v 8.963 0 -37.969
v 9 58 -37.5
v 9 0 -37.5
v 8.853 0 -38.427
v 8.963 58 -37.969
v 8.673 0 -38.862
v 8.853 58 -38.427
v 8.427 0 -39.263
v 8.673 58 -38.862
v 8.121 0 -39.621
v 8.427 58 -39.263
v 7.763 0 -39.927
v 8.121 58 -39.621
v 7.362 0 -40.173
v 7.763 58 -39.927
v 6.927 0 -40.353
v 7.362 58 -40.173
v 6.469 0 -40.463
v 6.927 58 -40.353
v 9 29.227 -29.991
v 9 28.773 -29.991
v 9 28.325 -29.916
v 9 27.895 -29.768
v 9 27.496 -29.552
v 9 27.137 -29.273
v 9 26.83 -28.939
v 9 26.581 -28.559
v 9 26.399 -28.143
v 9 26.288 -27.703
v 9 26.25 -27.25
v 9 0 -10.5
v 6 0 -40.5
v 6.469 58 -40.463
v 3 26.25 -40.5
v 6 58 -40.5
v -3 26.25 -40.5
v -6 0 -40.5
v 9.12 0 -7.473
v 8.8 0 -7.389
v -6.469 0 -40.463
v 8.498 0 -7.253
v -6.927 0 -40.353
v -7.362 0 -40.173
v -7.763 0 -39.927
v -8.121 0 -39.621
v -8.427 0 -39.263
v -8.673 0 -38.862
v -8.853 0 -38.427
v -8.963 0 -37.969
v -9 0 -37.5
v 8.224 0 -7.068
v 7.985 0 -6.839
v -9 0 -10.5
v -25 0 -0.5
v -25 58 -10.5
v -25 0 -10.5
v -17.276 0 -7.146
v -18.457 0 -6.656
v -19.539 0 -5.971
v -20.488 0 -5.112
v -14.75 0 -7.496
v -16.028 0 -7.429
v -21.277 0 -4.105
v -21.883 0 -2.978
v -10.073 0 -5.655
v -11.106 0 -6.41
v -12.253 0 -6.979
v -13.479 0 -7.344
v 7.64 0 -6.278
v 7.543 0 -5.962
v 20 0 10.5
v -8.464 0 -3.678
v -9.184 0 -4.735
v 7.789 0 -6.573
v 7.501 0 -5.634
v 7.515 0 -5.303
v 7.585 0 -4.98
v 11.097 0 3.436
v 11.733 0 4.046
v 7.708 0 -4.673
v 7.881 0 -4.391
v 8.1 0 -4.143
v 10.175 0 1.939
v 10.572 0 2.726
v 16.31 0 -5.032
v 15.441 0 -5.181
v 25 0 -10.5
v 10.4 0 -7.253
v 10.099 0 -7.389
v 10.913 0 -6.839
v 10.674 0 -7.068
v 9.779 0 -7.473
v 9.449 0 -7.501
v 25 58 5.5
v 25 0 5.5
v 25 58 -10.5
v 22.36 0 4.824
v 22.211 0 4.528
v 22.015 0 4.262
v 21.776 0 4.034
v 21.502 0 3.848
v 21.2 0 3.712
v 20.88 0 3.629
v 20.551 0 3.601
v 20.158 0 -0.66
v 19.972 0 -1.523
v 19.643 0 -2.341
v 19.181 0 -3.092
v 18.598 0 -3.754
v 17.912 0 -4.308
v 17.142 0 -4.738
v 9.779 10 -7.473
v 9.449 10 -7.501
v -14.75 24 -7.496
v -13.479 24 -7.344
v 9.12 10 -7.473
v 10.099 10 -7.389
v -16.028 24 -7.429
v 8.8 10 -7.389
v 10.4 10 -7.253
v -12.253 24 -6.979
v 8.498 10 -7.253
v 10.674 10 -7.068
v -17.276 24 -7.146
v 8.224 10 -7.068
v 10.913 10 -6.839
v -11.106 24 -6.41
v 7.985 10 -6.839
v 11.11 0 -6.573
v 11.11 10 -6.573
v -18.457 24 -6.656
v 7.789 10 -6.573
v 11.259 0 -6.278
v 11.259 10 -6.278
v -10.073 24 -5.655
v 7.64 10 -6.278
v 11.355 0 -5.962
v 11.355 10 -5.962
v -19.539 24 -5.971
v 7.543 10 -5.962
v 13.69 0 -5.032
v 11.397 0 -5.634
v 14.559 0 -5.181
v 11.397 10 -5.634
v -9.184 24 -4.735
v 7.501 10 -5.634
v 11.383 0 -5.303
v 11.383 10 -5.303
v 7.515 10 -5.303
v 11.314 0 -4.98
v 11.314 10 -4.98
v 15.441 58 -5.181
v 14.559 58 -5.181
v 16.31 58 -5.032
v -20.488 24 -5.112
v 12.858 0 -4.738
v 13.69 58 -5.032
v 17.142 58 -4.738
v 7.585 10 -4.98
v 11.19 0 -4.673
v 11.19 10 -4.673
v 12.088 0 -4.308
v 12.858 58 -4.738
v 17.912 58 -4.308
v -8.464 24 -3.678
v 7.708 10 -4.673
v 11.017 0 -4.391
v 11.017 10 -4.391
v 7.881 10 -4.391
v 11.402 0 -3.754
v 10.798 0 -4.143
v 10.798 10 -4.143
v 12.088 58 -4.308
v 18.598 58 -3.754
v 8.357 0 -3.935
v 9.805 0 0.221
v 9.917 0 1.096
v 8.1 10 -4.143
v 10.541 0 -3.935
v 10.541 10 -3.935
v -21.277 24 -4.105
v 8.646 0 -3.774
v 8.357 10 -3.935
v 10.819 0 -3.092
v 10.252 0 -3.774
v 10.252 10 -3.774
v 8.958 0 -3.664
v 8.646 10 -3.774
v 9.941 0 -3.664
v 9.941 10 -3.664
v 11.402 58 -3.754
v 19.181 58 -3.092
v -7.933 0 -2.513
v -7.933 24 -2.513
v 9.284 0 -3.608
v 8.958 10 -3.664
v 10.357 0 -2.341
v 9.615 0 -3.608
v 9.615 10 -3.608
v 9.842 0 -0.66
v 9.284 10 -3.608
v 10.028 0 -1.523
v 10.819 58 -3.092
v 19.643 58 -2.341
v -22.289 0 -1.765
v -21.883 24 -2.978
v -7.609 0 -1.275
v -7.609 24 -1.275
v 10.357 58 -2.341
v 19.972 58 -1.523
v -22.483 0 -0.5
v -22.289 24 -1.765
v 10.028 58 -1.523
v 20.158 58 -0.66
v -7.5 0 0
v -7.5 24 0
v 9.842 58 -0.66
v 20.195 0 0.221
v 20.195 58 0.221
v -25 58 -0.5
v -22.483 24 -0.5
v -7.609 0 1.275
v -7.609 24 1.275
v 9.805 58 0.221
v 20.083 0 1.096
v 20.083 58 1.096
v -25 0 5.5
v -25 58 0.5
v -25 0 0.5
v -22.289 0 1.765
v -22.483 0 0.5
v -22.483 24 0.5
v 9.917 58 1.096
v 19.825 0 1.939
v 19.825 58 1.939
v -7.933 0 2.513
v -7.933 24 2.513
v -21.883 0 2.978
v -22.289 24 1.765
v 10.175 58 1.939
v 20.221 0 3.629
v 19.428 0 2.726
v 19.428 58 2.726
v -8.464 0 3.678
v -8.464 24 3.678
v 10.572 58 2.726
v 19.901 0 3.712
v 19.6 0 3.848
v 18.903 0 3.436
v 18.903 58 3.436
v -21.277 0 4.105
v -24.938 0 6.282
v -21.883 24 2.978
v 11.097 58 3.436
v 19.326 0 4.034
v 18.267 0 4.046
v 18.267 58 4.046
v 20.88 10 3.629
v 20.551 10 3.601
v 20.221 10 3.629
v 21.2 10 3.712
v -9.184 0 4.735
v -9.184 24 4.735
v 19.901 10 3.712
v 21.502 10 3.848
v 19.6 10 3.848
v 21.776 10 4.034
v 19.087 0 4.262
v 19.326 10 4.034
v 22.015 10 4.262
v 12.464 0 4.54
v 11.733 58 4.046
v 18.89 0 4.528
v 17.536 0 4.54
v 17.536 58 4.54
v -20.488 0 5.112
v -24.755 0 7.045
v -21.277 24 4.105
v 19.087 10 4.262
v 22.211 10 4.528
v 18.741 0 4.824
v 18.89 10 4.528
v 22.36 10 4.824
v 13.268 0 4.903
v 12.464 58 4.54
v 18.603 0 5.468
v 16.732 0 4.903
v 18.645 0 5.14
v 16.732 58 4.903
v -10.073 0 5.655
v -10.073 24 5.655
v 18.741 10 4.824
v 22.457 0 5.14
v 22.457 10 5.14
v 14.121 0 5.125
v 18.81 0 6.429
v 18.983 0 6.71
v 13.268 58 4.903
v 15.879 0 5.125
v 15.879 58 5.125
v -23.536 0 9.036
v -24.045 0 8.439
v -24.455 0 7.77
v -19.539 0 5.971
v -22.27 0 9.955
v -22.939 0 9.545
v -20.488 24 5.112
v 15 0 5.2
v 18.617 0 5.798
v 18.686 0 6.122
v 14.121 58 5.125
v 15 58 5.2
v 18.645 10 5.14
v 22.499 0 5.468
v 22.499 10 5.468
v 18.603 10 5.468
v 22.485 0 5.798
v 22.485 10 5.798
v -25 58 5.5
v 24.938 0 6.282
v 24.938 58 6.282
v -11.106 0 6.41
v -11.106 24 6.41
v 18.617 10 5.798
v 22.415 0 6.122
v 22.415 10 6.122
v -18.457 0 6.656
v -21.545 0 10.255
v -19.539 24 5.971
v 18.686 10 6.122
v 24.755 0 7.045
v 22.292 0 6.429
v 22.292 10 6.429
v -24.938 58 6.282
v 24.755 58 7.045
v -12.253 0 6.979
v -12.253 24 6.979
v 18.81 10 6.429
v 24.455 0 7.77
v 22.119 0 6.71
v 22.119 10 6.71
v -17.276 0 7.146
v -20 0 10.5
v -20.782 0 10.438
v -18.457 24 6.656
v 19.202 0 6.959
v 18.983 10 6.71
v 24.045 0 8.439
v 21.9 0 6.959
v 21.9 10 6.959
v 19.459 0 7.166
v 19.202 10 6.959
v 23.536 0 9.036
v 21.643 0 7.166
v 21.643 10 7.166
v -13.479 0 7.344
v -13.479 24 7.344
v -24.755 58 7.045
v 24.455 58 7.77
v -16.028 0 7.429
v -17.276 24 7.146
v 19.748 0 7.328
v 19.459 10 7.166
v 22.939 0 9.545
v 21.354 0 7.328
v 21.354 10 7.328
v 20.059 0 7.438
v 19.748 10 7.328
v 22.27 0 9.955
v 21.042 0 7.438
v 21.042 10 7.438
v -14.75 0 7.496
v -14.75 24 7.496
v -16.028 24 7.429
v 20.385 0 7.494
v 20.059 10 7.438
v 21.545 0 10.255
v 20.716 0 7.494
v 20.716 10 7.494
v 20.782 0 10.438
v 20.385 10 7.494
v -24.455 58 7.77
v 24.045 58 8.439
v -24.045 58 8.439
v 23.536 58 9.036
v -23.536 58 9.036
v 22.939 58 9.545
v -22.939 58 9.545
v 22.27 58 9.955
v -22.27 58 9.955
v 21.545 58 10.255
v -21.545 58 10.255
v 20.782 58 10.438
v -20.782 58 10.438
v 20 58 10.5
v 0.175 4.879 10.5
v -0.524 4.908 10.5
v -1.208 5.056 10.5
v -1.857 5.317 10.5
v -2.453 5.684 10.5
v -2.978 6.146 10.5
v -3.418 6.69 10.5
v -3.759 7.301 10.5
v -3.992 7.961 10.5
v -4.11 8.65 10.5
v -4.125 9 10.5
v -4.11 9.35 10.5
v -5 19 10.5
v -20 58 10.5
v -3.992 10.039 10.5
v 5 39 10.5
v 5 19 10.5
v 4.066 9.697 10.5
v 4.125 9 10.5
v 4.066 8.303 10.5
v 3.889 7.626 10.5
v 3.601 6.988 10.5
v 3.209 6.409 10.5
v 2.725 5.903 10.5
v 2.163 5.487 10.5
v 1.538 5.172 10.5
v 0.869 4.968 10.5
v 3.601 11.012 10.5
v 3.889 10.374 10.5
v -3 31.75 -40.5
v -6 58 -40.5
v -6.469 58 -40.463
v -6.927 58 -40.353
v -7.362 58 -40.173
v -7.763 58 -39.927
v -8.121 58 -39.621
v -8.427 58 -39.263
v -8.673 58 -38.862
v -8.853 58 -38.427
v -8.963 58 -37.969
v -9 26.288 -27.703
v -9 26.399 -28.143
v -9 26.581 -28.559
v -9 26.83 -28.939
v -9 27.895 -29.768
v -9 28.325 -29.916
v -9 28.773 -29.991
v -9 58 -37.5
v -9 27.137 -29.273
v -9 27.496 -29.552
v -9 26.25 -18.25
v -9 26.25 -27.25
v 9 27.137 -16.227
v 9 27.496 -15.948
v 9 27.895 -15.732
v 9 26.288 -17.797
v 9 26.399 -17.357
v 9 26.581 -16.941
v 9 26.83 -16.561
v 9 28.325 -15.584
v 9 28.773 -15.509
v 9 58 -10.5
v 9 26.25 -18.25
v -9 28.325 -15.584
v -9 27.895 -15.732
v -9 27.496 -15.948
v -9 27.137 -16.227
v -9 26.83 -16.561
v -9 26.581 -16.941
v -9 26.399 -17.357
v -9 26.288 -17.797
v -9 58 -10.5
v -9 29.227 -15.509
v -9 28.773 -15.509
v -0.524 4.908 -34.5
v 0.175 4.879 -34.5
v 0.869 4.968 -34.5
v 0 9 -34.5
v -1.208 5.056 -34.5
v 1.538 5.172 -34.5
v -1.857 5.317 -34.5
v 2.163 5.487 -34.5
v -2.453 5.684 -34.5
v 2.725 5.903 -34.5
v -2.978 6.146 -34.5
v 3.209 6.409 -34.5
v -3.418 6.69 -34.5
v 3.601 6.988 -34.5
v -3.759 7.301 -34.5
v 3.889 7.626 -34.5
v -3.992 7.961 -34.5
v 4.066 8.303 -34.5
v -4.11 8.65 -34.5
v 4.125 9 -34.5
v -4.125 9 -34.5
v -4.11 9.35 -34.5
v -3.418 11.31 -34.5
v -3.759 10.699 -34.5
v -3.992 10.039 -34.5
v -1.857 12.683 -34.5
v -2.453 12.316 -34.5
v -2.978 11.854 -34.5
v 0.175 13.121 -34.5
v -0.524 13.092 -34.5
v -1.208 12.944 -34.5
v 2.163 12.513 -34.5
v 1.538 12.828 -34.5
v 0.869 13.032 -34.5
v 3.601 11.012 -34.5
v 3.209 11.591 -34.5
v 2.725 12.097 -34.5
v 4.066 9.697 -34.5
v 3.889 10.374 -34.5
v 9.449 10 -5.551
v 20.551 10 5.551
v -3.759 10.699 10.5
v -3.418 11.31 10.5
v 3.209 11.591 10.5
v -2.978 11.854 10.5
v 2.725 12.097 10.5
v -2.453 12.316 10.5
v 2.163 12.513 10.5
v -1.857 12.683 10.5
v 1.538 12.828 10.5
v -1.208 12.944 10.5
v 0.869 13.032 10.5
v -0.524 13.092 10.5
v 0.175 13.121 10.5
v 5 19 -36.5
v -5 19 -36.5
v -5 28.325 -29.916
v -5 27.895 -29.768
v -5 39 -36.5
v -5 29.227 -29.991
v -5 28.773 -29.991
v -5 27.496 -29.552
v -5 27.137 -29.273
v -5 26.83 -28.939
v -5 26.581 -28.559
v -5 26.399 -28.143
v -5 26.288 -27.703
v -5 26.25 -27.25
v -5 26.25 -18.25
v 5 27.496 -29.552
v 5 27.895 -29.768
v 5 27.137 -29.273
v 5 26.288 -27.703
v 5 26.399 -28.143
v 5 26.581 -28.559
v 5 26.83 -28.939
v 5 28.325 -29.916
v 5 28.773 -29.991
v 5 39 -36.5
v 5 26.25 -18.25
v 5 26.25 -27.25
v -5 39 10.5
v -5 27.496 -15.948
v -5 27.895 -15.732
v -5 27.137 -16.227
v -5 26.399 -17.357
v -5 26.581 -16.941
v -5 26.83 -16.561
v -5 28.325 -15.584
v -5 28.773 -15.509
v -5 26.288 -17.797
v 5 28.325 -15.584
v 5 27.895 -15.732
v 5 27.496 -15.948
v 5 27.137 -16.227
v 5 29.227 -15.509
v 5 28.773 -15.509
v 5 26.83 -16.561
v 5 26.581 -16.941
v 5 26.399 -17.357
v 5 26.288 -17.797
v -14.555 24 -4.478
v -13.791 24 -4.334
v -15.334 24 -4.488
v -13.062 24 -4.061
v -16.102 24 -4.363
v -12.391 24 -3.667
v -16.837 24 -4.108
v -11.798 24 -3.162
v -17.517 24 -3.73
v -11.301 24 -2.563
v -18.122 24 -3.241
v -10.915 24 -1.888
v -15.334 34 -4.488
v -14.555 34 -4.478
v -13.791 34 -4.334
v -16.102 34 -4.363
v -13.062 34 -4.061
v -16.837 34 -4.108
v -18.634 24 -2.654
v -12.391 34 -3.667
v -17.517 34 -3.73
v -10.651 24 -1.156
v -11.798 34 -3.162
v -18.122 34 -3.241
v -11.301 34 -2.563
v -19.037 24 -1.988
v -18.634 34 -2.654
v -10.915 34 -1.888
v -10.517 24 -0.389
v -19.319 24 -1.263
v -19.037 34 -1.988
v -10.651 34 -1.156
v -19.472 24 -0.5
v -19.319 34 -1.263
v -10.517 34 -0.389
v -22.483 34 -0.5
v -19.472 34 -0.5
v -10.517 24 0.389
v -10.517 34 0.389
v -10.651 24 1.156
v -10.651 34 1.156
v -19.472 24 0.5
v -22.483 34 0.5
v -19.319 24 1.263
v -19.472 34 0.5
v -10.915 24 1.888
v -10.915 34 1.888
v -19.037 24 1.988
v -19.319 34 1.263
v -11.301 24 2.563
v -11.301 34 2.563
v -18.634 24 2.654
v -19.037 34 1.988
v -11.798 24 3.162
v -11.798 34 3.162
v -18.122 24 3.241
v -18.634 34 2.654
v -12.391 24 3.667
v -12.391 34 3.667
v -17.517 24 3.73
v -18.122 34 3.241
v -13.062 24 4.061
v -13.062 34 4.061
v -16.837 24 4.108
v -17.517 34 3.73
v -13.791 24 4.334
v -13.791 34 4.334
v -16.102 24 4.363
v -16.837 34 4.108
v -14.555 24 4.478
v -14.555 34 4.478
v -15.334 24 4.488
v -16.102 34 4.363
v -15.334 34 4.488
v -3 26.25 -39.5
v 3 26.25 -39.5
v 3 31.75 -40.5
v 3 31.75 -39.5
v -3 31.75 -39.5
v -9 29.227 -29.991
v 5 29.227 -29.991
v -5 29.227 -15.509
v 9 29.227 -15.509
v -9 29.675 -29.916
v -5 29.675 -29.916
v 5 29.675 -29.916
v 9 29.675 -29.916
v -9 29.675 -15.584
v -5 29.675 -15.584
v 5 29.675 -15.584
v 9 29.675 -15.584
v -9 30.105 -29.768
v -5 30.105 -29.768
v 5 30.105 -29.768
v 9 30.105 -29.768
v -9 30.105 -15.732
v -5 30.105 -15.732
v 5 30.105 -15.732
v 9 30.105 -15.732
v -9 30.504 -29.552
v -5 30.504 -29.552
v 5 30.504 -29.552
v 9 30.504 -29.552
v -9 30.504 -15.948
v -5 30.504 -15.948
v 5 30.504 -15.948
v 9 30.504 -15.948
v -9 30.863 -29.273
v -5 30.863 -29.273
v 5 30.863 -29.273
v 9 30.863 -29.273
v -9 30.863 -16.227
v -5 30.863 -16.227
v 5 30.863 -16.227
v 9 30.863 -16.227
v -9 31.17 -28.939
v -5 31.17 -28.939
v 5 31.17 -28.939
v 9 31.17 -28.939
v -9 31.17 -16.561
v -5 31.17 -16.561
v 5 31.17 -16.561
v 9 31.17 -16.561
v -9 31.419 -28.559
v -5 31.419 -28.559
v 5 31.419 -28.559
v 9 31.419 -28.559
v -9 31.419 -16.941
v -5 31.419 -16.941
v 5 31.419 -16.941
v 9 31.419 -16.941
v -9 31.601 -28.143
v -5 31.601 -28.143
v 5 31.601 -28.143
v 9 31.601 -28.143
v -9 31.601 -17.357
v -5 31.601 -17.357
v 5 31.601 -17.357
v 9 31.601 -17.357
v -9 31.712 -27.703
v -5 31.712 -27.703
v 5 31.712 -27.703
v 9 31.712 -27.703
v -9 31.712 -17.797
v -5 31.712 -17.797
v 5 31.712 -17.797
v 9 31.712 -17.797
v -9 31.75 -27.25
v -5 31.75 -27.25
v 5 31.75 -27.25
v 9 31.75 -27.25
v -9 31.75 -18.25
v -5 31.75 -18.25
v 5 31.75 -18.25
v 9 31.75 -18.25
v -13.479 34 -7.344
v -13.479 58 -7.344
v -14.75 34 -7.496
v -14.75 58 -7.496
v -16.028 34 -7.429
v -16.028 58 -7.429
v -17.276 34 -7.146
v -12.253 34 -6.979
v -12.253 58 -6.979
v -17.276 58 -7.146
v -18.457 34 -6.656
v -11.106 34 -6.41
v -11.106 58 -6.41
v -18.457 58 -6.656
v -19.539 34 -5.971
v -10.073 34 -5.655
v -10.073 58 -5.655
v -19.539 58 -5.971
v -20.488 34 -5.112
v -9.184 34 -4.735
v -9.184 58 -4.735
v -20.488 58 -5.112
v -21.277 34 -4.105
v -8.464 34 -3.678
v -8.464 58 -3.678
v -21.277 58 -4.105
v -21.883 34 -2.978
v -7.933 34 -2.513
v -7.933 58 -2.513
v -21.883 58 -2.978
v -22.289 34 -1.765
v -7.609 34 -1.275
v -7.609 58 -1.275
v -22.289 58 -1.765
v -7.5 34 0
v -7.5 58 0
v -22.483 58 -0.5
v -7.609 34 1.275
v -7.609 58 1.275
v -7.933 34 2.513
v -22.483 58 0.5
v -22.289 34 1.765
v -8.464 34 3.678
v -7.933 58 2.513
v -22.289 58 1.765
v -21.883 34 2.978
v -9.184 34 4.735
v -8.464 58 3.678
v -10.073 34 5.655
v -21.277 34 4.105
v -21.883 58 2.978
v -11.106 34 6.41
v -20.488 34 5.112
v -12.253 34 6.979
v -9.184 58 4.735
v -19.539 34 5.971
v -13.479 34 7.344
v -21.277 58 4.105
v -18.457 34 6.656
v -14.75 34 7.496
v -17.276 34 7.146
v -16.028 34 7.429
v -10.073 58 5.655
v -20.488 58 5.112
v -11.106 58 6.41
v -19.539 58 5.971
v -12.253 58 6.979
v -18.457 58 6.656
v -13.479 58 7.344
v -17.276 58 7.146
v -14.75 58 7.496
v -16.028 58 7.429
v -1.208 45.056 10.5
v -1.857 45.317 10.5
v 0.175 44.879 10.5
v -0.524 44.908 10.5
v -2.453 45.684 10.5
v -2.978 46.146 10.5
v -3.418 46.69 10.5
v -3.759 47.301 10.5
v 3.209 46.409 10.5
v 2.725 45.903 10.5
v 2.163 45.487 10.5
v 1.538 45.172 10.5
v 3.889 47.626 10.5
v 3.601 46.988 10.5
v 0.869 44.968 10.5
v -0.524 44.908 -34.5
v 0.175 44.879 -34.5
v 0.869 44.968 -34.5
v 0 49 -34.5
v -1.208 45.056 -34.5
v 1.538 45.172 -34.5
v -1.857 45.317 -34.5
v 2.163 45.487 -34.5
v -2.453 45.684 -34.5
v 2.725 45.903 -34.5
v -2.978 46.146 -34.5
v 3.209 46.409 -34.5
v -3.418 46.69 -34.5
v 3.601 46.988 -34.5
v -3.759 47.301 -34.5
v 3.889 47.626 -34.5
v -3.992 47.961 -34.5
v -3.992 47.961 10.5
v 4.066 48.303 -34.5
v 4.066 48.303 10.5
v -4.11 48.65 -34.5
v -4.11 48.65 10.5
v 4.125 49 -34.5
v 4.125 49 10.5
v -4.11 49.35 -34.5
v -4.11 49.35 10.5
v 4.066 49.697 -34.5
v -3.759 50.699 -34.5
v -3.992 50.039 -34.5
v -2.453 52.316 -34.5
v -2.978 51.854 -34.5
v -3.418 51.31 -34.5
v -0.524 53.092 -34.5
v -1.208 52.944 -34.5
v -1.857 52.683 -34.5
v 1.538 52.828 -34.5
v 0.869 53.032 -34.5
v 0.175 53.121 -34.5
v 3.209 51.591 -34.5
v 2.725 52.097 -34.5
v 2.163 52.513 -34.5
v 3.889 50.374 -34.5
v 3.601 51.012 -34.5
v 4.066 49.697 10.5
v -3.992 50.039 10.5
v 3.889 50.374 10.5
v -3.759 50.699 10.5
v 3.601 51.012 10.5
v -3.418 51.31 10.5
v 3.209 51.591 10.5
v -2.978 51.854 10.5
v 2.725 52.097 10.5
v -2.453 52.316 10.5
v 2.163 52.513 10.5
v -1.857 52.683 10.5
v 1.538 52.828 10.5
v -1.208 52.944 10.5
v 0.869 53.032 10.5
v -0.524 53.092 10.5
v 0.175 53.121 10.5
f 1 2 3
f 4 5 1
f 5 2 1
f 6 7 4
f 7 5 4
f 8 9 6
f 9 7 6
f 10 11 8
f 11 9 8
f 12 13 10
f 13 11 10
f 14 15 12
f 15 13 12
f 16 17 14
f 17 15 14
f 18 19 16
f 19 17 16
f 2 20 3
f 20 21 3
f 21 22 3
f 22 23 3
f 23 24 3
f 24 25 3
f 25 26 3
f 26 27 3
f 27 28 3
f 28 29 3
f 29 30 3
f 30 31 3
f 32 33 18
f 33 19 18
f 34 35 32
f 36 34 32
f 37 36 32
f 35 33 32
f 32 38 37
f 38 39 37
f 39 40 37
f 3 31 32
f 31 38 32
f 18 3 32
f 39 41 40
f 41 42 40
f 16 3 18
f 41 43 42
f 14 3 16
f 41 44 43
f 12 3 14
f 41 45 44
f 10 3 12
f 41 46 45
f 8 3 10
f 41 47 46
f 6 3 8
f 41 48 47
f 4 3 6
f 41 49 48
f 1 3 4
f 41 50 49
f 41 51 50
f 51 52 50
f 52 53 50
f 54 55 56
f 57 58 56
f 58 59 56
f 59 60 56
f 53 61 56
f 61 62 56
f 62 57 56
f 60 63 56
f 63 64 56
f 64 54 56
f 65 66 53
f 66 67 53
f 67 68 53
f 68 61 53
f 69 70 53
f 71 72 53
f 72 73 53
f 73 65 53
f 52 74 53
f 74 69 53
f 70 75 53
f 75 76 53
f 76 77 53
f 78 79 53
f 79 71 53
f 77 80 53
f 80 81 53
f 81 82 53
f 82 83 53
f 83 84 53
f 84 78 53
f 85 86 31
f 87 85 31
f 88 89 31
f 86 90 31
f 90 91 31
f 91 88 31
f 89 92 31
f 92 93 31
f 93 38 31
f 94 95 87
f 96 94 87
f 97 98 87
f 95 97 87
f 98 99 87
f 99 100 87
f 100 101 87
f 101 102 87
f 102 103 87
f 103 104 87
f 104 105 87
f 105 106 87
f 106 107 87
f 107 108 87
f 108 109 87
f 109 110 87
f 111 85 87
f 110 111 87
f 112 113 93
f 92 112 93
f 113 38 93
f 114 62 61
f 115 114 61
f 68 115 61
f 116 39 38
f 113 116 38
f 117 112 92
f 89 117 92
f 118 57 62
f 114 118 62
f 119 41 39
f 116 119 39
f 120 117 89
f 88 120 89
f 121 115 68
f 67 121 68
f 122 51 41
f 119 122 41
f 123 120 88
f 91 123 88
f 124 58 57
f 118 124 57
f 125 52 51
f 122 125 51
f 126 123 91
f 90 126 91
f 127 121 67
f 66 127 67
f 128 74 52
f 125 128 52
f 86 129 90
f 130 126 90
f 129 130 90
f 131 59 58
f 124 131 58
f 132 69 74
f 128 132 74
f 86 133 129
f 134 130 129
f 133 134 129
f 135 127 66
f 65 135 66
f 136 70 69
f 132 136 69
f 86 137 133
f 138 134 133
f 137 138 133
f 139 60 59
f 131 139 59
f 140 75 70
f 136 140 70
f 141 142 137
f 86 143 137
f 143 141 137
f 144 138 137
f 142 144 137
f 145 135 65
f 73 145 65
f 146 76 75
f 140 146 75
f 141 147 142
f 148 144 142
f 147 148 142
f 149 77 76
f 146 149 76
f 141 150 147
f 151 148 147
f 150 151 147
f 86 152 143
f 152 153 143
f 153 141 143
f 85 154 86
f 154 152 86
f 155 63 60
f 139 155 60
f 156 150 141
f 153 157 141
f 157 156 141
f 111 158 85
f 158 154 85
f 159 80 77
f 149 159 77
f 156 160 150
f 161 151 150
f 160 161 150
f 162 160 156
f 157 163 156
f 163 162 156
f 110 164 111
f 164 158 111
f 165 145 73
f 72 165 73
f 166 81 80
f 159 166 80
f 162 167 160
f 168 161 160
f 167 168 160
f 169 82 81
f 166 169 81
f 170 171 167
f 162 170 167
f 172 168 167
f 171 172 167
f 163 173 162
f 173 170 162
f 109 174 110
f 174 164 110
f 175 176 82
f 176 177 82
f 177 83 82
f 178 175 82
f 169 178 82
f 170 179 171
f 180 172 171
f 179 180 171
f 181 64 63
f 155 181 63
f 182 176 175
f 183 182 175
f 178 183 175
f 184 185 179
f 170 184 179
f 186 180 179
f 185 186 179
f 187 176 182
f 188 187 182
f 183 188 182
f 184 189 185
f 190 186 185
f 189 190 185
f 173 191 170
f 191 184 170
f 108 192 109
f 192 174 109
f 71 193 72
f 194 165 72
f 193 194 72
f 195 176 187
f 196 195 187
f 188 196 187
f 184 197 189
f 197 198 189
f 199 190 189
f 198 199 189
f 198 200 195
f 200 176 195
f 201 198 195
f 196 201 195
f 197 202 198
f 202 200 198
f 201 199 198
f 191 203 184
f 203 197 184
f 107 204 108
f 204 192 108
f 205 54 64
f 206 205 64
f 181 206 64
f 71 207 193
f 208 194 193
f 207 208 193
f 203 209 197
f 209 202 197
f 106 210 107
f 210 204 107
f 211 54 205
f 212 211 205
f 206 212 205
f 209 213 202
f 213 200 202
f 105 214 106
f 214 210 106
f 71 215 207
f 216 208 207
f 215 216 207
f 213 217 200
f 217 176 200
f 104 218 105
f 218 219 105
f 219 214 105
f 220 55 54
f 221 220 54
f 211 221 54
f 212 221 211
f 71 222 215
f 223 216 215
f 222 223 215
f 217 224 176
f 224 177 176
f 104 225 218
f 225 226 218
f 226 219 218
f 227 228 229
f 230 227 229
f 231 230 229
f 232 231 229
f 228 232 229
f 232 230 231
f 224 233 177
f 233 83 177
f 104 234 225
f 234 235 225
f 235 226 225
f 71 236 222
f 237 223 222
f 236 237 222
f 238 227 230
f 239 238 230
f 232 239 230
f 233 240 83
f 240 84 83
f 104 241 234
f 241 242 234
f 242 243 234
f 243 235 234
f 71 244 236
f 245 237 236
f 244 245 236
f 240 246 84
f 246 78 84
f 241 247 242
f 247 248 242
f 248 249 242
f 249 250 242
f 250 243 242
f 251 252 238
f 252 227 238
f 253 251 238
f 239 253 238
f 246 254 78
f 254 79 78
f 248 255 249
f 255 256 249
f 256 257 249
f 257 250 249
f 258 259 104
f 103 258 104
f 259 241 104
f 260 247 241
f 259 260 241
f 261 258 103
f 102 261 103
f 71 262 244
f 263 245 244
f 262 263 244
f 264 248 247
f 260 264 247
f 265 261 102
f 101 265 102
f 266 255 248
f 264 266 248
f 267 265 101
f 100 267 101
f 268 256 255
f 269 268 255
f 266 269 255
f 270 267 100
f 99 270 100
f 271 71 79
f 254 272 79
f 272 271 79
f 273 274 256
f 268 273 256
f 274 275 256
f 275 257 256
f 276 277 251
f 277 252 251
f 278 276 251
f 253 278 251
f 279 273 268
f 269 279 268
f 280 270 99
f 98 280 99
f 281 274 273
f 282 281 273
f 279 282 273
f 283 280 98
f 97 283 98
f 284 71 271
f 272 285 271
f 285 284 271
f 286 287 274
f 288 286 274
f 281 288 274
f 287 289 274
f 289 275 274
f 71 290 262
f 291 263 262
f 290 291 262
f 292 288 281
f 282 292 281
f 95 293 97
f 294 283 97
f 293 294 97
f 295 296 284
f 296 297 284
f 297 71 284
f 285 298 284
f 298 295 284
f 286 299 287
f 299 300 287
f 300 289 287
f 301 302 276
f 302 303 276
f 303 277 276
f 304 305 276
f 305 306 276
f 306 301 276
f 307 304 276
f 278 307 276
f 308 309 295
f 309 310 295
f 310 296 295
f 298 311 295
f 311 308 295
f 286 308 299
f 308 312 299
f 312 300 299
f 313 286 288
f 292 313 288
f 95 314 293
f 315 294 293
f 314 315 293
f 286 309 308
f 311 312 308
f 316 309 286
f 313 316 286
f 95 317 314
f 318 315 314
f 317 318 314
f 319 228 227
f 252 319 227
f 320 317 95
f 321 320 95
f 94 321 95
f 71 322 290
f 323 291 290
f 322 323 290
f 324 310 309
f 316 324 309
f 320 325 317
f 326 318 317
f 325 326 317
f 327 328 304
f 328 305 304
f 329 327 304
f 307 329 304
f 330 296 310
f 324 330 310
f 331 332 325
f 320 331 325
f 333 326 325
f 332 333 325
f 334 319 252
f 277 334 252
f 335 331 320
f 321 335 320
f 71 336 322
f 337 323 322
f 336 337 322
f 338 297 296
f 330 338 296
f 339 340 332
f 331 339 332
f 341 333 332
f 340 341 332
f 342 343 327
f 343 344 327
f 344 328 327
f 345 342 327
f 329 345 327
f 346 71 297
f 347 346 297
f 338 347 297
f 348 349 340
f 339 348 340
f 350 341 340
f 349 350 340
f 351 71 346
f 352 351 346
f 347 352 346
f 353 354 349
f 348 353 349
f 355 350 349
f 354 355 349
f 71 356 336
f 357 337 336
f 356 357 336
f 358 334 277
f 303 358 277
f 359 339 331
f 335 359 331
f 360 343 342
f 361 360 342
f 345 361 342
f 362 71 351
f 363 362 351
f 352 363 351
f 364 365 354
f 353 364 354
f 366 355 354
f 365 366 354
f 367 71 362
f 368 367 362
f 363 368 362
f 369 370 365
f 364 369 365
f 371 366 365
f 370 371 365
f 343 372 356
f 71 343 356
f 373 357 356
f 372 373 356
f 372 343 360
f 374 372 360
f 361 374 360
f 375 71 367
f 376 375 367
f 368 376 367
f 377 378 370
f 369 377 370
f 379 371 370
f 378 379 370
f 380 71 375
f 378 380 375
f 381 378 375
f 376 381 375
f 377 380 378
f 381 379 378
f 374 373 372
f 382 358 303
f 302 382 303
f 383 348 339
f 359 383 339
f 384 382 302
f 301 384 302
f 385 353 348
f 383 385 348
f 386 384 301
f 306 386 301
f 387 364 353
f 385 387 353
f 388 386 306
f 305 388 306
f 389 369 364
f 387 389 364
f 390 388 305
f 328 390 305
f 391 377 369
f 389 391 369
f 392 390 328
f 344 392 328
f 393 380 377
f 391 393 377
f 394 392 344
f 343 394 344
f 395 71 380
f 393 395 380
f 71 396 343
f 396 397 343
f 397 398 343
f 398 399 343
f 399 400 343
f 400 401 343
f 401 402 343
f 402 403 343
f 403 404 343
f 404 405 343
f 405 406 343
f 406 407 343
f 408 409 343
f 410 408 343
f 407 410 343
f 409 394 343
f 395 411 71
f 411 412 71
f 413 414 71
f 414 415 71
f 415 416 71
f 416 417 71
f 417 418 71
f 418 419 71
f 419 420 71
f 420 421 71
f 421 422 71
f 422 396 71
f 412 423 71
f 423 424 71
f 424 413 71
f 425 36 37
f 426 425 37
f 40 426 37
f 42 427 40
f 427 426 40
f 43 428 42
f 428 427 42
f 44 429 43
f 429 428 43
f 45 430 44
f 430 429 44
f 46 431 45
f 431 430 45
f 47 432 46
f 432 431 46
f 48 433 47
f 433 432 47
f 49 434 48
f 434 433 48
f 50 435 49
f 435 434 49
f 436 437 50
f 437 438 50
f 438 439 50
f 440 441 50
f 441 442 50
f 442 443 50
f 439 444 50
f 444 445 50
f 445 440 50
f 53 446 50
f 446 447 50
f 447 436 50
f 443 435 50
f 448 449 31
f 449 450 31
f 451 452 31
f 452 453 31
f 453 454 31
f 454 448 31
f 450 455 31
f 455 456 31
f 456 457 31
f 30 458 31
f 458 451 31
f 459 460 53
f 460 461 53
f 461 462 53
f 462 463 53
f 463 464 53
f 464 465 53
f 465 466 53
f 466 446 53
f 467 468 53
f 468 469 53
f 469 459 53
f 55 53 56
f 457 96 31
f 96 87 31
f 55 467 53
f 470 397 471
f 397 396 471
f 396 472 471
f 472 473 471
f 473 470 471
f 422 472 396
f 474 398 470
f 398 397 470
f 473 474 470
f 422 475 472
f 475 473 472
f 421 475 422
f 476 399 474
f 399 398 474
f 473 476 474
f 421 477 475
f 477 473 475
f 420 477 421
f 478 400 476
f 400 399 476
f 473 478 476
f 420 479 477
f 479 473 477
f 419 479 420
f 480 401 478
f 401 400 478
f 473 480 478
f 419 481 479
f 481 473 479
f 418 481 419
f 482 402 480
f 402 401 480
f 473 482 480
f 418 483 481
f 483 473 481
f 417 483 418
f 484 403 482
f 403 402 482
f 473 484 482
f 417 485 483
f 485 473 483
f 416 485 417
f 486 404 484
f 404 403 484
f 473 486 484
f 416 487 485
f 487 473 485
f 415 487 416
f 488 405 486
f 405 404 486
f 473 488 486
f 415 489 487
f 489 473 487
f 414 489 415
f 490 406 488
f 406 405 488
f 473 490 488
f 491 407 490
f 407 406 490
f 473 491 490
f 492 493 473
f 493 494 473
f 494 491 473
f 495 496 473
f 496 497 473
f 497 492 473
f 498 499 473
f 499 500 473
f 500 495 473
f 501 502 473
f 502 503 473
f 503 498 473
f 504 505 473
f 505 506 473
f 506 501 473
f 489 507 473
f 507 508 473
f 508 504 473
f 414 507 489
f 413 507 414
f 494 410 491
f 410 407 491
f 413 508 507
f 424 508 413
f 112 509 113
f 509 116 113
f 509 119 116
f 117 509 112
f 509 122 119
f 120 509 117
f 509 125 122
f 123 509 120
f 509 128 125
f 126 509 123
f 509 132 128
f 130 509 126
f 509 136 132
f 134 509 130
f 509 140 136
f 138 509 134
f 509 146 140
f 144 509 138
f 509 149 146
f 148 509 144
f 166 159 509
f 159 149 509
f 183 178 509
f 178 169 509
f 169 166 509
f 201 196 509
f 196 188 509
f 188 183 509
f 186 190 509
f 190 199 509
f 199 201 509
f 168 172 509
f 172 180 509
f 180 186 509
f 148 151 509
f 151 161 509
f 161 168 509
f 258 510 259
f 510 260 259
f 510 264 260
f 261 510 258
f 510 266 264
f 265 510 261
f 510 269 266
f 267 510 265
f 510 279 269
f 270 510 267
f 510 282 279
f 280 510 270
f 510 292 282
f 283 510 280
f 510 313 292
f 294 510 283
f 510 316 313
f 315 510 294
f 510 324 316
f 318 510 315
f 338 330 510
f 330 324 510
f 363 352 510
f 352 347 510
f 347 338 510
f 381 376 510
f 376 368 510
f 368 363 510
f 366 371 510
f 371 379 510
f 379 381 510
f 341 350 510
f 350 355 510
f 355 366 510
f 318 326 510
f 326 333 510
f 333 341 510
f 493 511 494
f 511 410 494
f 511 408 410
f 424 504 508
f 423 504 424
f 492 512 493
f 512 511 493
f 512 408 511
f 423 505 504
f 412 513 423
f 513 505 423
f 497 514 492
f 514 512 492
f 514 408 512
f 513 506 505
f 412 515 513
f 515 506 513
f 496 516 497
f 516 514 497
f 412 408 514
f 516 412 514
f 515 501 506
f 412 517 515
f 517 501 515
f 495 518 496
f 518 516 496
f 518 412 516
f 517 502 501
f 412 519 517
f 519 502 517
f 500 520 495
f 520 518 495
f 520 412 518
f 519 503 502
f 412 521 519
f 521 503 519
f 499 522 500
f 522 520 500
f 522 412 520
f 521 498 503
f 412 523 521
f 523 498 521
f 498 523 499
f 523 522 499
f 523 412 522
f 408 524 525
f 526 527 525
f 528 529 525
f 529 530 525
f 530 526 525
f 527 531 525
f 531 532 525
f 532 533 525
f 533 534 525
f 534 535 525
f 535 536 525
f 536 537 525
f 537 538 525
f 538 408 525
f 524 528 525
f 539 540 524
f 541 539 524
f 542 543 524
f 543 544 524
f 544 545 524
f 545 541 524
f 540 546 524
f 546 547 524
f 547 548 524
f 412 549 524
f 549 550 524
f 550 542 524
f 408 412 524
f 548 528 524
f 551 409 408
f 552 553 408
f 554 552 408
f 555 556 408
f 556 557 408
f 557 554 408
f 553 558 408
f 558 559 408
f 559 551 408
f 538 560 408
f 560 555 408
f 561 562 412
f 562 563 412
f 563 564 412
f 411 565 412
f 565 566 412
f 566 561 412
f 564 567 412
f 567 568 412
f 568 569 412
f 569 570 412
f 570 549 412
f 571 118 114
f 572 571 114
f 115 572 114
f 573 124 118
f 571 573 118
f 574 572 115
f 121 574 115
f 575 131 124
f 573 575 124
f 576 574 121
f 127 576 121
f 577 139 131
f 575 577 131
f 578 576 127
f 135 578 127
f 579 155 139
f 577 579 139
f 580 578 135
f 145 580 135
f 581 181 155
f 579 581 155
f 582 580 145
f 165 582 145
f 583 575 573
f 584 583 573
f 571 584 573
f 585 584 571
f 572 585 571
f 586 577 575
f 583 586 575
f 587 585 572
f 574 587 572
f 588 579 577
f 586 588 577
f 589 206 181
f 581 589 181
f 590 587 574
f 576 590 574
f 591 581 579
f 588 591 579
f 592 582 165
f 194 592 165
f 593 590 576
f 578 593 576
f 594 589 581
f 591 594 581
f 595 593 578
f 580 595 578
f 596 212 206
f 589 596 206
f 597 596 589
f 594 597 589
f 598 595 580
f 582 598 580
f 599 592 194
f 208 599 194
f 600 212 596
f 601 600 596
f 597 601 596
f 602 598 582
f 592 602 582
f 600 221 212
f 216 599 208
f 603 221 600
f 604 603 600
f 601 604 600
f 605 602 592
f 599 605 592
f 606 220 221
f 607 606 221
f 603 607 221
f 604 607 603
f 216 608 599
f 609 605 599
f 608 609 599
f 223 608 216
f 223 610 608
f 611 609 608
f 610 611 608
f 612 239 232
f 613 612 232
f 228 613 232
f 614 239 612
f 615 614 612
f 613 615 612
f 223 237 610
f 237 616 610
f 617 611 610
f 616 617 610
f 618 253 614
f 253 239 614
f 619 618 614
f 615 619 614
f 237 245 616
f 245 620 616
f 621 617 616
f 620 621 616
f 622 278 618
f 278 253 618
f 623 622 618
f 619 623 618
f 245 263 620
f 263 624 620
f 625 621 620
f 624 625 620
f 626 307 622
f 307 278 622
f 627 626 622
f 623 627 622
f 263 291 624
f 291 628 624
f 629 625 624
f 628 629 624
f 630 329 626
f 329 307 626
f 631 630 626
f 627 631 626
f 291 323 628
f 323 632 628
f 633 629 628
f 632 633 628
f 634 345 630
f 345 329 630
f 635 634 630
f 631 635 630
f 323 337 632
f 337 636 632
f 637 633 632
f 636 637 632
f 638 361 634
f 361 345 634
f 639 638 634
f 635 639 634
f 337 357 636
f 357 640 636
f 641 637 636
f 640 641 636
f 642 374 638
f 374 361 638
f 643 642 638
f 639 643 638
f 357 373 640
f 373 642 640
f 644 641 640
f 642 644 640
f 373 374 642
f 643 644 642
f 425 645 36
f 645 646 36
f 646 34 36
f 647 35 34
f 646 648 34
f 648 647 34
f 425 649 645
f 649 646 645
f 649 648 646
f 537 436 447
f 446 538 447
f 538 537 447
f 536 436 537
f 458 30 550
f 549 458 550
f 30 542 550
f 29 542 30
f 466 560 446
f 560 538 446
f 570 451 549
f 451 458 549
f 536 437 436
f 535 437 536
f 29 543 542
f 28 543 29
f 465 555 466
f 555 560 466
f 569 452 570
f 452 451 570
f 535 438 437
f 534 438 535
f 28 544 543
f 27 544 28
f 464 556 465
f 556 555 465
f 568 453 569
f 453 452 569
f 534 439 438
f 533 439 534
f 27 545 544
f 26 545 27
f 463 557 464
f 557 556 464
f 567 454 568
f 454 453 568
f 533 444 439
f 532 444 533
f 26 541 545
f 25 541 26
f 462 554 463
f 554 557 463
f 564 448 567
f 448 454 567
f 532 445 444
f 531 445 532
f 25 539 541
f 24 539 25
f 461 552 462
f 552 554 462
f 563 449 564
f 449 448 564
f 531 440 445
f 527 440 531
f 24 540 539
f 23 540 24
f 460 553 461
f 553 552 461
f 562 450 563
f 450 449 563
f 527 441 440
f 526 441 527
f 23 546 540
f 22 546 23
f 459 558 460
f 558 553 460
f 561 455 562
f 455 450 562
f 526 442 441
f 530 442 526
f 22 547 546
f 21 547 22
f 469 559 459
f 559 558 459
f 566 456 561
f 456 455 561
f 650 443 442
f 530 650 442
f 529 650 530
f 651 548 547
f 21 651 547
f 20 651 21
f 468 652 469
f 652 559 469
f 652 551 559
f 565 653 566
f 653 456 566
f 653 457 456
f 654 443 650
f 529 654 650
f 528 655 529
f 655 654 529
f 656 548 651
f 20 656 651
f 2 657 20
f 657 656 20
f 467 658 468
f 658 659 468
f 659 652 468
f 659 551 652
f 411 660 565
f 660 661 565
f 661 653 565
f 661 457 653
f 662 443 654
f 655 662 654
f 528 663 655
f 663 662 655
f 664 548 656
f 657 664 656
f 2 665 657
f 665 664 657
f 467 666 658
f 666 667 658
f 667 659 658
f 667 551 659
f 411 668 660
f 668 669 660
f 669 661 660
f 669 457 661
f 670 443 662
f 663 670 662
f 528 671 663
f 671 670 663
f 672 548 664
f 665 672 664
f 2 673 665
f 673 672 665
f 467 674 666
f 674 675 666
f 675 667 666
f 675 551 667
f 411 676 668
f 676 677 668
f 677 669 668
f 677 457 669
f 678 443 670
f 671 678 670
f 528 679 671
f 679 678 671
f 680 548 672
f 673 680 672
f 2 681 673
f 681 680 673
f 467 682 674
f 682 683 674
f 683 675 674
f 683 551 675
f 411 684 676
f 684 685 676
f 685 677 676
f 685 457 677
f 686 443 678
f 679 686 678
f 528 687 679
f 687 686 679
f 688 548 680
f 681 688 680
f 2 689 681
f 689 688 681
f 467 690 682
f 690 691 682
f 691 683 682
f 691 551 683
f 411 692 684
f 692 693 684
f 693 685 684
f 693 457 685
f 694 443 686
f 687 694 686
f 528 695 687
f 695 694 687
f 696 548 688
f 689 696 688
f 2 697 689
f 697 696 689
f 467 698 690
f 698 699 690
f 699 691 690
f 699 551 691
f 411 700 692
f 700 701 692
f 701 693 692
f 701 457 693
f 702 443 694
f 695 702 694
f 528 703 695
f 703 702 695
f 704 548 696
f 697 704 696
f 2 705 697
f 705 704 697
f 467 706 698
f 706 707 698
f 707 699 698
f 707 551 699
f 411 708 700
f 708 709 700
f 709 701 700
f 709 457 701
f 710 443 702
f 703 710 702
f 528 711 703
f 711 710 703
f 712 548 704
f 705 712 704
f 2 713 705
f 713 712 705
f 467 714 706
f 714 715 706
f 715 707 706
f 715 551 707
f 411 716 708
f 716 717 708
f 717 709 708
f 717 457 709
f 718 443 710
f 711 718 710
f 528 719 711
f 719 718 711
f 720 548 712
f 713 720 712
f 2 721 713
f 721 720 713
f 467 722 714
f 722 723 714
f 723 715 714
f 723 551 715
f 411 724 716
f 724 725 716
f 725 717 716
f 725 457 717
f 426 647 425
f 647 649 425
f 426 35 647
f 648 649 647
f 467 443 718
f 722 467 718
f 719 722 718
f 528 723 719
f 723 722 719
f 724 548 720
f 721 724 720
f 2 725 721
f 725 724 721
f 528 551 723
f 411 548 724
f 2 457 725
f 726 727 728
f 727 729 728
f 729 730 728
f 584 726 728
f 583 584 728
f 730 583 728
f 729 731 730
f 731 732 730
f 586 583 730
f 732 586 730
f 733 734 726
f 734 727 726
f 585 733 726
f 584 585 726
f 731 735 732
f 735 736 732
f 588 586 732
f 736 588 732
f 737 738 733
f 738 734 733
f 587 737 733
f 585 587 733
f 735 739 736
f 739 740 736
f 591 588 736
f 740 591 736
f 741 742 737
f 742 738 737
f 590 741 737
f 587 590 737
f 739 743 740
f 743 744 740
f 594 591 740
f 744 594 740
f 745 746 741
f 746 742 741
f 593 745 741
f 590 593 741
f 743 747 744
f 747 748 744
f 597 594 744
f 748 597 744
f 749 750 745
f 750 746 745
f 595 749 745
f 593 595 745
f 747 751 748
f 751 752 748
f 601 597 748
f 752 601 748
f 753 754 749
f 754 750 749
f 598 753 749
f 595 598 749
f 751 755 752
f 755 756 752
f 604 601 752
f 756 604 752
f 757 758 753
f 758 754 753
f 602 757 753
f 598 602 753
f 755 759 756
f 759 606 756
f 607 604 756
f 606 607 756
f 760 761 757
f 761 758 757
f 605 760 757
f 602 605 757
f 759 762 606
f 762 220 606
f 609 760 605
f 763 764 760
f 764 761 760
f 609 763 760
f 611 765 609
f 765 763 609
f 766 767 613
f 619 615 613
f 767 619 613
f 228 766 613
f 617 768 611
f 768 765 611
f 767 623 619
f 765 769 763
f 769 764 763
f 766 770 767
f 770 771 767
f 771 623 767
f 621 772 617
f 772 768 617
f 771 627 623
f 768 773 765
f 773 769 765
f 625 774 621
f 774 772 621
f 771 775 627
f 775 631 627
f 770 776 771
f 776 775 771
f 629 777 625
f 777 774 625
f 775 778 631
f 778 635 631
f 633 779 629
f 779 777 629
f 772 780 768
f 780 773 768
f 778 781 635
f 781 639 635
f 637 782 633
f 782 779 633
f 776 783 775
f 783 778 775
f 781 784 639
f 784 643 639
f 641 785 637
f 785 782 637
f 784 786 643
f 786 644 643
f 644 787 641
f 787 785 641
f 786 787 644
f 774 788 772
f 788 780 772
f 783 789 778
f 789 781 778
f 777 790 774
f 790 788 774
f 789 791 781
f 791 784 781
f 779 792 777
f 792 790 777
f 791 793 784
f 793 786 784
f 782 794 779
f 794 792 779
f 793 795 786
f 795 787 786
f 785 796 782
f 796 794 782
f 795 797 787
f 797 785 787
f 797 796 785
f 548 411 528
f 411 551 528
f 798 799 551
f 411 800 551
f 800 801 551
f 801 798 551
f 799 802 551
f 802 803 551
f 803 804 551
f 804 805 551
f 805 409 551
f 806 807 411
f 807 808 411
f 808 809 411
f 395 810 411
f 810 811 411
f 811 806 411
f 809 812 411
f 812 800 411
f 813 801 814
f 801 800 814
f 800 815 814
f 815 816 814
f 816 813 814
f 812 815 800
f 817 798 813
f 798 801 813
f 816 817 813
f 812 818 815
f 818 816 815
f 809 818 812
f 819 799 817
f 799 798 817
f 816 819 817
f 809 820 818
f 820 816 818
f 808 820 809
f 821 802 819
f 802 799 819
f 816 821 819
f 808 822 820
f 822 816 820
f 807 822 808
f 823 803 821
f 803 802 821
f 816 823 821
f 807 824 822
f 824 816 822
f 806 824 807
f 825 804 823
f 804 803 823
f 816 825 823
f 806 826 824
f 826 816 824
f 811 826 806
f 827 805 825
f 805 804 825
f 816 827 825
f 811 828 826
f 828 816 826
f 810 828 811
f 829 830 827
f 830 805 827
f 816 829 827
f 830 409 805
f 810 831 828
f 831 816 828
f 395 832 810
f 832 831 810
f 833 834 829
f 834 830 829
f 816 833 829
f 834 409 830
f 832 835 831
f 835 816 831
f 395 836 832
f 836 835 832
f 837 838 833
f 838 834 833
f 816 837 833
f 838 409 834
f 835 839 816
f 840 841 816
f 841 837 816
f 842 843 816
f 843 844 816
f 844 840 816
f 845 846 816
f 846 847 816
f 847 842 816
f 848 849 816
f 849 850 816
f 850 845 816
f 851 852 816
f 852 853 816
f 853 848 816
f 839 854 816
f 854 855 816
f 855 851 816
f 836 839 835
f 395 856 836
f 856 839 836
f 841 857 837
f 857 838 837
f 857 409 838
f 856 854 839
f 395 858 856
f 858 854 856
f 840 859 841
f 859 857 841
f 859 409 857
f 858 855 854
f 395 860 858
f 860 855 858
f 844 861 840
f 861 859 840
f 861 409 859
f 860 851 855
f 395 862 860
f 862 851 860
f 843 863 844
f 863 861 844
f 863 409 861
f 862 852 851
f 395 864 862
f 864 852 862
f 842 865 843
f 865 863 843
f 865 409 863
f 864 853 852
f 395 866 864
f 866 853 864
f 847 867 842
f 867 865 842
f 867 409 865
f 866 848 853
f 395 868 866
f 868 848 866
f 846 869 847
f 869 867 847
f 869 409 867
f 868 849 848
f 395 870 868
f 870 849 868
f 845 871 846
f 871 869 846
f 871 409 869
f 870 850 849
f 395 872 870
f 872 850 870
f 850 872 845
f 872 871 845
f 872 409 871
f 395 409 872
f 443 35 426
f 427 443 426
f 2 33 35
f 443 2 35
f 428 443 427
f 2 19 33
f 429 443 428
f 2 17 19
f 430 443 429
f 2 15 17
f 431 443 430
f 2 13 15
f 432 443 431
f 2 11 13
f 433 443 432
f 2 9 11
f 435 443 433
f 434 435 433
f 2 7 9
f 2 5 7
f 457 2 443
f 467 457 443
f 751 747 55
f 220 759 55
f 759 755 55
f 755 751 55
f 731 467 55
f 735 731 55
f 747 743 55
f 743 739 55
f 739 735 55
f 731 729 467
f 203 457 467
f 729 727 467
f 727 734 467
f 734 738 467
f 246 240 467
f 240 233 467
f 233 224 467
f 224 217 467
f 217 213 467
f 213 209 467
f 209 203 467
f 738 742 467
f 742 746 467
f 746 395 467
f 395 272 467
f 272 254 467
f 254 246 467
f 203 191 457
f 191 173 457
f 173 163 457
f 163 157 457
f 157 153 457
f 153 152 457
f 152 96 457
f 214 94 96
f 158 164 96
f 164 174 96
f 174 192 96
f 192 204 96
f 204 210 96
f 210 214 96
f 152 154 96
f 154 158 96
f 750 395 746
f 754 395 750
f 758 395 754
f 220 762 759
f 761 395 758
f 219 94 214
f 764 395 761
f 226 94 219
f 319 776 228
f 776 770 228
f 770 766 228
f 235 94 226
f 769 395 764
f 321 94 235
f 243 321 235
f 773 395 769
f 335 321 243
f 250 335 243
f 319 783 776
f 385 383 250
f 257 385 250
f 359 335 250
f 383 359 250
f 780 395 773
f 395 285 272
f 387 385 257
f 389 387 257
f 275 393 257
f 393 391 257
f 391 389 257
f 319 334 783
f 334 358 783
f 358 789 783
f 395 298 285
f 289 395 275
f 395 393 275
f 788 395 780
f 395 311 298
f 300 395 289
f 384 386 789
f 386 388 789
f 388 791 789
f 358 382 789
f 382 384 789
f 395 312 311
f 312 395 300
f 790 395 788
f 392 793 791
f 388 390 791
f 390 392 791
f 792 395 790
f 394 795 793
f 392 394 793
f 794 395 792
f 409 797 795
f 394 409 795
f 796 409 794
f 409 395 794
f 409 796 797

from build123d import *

# Parameters (mm, degrees)
SKETCH1_W           = 50
SKETCH1_H           = 21
BOSS_EXTRUDE1_DEPTH = 58
SKETCH3_R           = 7.5
CUT_EXTRUDE1_DEPTH  = 24
CUT_EXTRUDE2_REACH  = 66.025
SKETCH4_R           = 5.2
CUT_EXTRUDE3_START  = -24
SKETCH5_R           = 7.5
CUT_EXTRUDE3_DEPTH  = 24
CUT_EXTRUDE4_REACH  = 66.025
SKETCH6_R           = 4.5
CUT_EXTRUDE5_REACH  = 68.558
SKETCH8_W           = 10
SKETCH8_H           = 20
SKETCH11_W          = 4
SKETCH11_H          = 20
BOSS_EXTRUDE2_DEPTH = 26
SKETCH12_W          = 18
SKETCH12_H          = 20
BOSS_EXTRUDE3_DEPTH = 4
CUT_EXTRUDE7_DEPTH  = 79.487260113
FILLET1_R           = 5
SKETCH14_R          = 1.95
CUT_EXTRUDE8_DEPTH  = 10
SKETCH15_W          = 5.527864045
SKETCH15_H          = 1
CUT_EXTRUDE9_DEPTH  = 76.028327984
SKETCH17_W          = 30
SKETCH17_H          = 19
BOSS_EXTRUDE5_DEPTH = 18
SKETCH7_R           = 4.125
CUT_EXTRUDE6_DEPTH  = 45
FILLET8_R           = 3
SKETCH18_W          = 6
SKETCH18_H          = 5.5
CUT_EXTRUDE10_DEPTH = 1


with BuildPart() as part:
    # Sketch1 → Boss-Extrude1 (new body)
    with BuildSketch(Plane(origin=(0, 0, 0), x_dir=(1, 0, 0), z_dir=(0, 1, 0))):
        Rectangle(SKETCH1_W, SKETCH1_H)
    extrude(amount=BOSS_EXTRUDE1_DEPTH)

    # Sketch3 → Cut-Extrude1 (cut)
    with BuildSketch(Plane(origin=(0, 58, 0), x_dir=(1, 0, 0), z_dir=(0, 1, 0))):
        with Locations(Location((-15, 0, 0), (0, 0, 270))):
            Circle(SKETCH3_R)
    extrude(amount=-CUT_EXTRUDE1_DEPTH, mode=Mode.SUBTRACT)

    # Sketch4 → Cut-Extrude2 (cut, up to next)
    with BuildSketch(Plane(origin=(0, 58, 0), x_dir=(1, 0, 0), z_dir=(0, 1, 0)), mode=Mode.PRIVATE) as cut_extrude2_sk1:
        with Locations(Location((15, 0, 0), (0, 0, 270))):
            Circle(SKETCH4_R)
    cut_extrude2_tool1 = extrude(cut_extrude2_sk1.sketch, amount=-CUT_EXTRUDE2_REACH, mode=Mode.PRIVATE) & part.part
    add(cut_extrude2_tool1.solids().sort_by_distance((15, 58, 0))[0], mode=Mode.SUBTRACT)

    # Sketch5 → Cut-Extrude3 (cut)
    with BuildSketch(Plane.XZ.offset(CUT_EXTRUDE3_START)):
        with Locations(Location((-15, 0, 0), (0, 0, 90))):
            Circle(SKETCH5_R)
    extrude(amount=CUT_EXTRUDE3_DEPTH, mode=Mode.SUBTRACT)

    # Sketch6 → Cut-Extrude4 (cut, up to next)
    with BuildSketch(Plane.XZ, mode=Mode.PRIVATE) as cut_extrude4_sk1:
        with Locations(Location((-15, 0, 0), (0, 0, 270))):
            Circle(SKETCH6_R)
    cut_extrude4_tool1 = extrude(cut_extrude4_sk1.sketch, amount=-CUT_EXTRUDE4_REACH, mode=Mode.PRIVATE) & part.part
    add(cut_extrude4_tool1.solids().sort_by_distance((-15, 0, 0))[0], mode=Mode.SUBTRACT)

    # Sketch8 → Cut-Extrude5 (cut, up to next)
    with BuildSketch(Plane.XY.offset(10.5), mode=Mode.PRIVATE) as cut_extrude5_sk1:
        with Locations((0, 29)):
            Rectangle(SKETCH8_W, SKETCH8_H)
    cut_extrude5_tool1 = extrude(cut_extrude5_sk1.sketch, amount=-CUT_EXTRUDE5_REACH, mode=Mode.PRIVATE) & part.part
    add(cut_extrude5_tool1.solids().sort_by_distance((0, 29, 10.5))[0], mode=Mode.SUBTRACT)

    # Sketch11 → Boss-Extrude2 (add)
    with BuildSketch(Plane(origin=(0, 0, -10.5), x_dir=(-1, 0, 0), z_dir=(0, 0, -1))):
        with Locations((7, 29)):
            Rectangle(SKETCH11_W, SKETCH11_H)
        with Locations((-7, 29)):
            Rectangle(SKETCH11_W, SKETCH11_H)
    extrude(amount=BOSS_EXTRUDE2_DEPTH)

    # Sketch12 → Boss-Extrude3 (add)
    with BuildSketch(Plane(origin=(0, 0, -36.5), x_dir=(-1, 0, 0), z_dir=(0, 0, -1))):
        with Locations((0, 29)):
            Rectangle(SKETCH12_W, SKETCH12_H)
    extrude(amount=BOSS_EXTRUDE3_DEPTH)

    # Sketch13 → Cut-Extrude7 (cut, through all)
    with BuildSketch(Plane(origin=(9, 0, 0), x_dir=(0, 0, -1), z_dir=(1, 0, 0))):
        with BuildLine():
            Line((18.25, 31.75), (27.25, 31.75))
            ThreePointArc((27.25, 31.75), (30, 29), (27.25, 26.25))
            Line((27.25, 26.25), (18.25, 26.25))
            ThreePointArc((18.25, 26.25), (15.5, 29), (18.25, 31.75))
        make_face()
    extrude(amount=-CUT_EXTRUDE7_DEPTH, mode=Mode.SUBTRACT)

    # Fillet1
    fillet1_edges = [part.edges().sort_by_distance(p)[0] for p in [
        (25, 29, 10.5),
        (-25, 29, 10.5),
    ]]
    fillet(fillet1_edges, radius=FILLET1_R)

    # Sketch14 → Cut-Extrude8 (cut)
    with BuildSketch(Plane.XZ):
        with Locations(Location((20.550788232, 5.550788232, 0), (0, 0, 270))):
            Circle(SKETCH14_R)
        with Locations(Location((9.449211768, -5.550788232, 0), (0, 0, 270))):
            Circle(SKETCH14_R)
    extrude(amount=-CUT_EXTRUDE8_DEPTH, mode=Mode.SUBTRACT)

    # Sketch15 → Cut-Extrude9 (cut, through all)
    with BuildSketch(Plane(origin=(0, 58, 0), x_dir=(1, 0, 0), z_dir=(0, 1, 0))):
        with Locations((-22.236067977, 0)):
            Rectangle(SKETCH15_W, SKETCH15_H)
    extrude(amount=-CUT_EXTRUDE9_DEPTH, mode=Mode.SUBTRACT)

    # Sketch17 → Boss-Extrude5 (add)
    with BuildSketch(Plane(origin=(9, 0, 0), x_dir=(0, 0, -1), z_dir=(1, 0, 0))):
        with Locations((25.5, 48.5)):
            Rectangle(SKETCH17_W, SKETCH17_H)
        with Locations((25.5, 9.5)):
            Rectangle(SKETCH17_W, SKETCH17_H)
    extrude(amount=-BOSS_EXTRUDE5_DEPTH)

    # Sketch7 → Cut-Extrude6 (cut)
    with BuildSketch(Plane.XY.offset(10.5)):
        with Locations((0, 49)):
            Circle(SKETCH7_R)
        with Locations((0, 9)):
            Circle(SKETCH7_R)
    extrude(amount=-CUT_EXTRUDE6_DEPTH, mode=Mode.SUBTRACT)

    # Fillet8
    fillet8_edges = [part.edges().sort_by_distance(p)[0] for p in [
        (-9, 29, -40.5),
        (9, 29, -40.5),
    ]]
    fillet(fillet8_edges, radius=FILLET8_R)

    # Sketch18 → Cut-Extrude10 (cut)
    with BuildSketch(Plane(origin=(0, 0, -40.5), x_dir=(-1, 0, 0), z_dir=(0, 0, -1))):
        with Locations((0, 29)):
            Rectangle(SKETCH18_W, SKETCH18_H)
    extrude(amount=-CUT_EXTRUDE10_DEPTH, mode=Mode.SUBTRACT)


solid = part.part
